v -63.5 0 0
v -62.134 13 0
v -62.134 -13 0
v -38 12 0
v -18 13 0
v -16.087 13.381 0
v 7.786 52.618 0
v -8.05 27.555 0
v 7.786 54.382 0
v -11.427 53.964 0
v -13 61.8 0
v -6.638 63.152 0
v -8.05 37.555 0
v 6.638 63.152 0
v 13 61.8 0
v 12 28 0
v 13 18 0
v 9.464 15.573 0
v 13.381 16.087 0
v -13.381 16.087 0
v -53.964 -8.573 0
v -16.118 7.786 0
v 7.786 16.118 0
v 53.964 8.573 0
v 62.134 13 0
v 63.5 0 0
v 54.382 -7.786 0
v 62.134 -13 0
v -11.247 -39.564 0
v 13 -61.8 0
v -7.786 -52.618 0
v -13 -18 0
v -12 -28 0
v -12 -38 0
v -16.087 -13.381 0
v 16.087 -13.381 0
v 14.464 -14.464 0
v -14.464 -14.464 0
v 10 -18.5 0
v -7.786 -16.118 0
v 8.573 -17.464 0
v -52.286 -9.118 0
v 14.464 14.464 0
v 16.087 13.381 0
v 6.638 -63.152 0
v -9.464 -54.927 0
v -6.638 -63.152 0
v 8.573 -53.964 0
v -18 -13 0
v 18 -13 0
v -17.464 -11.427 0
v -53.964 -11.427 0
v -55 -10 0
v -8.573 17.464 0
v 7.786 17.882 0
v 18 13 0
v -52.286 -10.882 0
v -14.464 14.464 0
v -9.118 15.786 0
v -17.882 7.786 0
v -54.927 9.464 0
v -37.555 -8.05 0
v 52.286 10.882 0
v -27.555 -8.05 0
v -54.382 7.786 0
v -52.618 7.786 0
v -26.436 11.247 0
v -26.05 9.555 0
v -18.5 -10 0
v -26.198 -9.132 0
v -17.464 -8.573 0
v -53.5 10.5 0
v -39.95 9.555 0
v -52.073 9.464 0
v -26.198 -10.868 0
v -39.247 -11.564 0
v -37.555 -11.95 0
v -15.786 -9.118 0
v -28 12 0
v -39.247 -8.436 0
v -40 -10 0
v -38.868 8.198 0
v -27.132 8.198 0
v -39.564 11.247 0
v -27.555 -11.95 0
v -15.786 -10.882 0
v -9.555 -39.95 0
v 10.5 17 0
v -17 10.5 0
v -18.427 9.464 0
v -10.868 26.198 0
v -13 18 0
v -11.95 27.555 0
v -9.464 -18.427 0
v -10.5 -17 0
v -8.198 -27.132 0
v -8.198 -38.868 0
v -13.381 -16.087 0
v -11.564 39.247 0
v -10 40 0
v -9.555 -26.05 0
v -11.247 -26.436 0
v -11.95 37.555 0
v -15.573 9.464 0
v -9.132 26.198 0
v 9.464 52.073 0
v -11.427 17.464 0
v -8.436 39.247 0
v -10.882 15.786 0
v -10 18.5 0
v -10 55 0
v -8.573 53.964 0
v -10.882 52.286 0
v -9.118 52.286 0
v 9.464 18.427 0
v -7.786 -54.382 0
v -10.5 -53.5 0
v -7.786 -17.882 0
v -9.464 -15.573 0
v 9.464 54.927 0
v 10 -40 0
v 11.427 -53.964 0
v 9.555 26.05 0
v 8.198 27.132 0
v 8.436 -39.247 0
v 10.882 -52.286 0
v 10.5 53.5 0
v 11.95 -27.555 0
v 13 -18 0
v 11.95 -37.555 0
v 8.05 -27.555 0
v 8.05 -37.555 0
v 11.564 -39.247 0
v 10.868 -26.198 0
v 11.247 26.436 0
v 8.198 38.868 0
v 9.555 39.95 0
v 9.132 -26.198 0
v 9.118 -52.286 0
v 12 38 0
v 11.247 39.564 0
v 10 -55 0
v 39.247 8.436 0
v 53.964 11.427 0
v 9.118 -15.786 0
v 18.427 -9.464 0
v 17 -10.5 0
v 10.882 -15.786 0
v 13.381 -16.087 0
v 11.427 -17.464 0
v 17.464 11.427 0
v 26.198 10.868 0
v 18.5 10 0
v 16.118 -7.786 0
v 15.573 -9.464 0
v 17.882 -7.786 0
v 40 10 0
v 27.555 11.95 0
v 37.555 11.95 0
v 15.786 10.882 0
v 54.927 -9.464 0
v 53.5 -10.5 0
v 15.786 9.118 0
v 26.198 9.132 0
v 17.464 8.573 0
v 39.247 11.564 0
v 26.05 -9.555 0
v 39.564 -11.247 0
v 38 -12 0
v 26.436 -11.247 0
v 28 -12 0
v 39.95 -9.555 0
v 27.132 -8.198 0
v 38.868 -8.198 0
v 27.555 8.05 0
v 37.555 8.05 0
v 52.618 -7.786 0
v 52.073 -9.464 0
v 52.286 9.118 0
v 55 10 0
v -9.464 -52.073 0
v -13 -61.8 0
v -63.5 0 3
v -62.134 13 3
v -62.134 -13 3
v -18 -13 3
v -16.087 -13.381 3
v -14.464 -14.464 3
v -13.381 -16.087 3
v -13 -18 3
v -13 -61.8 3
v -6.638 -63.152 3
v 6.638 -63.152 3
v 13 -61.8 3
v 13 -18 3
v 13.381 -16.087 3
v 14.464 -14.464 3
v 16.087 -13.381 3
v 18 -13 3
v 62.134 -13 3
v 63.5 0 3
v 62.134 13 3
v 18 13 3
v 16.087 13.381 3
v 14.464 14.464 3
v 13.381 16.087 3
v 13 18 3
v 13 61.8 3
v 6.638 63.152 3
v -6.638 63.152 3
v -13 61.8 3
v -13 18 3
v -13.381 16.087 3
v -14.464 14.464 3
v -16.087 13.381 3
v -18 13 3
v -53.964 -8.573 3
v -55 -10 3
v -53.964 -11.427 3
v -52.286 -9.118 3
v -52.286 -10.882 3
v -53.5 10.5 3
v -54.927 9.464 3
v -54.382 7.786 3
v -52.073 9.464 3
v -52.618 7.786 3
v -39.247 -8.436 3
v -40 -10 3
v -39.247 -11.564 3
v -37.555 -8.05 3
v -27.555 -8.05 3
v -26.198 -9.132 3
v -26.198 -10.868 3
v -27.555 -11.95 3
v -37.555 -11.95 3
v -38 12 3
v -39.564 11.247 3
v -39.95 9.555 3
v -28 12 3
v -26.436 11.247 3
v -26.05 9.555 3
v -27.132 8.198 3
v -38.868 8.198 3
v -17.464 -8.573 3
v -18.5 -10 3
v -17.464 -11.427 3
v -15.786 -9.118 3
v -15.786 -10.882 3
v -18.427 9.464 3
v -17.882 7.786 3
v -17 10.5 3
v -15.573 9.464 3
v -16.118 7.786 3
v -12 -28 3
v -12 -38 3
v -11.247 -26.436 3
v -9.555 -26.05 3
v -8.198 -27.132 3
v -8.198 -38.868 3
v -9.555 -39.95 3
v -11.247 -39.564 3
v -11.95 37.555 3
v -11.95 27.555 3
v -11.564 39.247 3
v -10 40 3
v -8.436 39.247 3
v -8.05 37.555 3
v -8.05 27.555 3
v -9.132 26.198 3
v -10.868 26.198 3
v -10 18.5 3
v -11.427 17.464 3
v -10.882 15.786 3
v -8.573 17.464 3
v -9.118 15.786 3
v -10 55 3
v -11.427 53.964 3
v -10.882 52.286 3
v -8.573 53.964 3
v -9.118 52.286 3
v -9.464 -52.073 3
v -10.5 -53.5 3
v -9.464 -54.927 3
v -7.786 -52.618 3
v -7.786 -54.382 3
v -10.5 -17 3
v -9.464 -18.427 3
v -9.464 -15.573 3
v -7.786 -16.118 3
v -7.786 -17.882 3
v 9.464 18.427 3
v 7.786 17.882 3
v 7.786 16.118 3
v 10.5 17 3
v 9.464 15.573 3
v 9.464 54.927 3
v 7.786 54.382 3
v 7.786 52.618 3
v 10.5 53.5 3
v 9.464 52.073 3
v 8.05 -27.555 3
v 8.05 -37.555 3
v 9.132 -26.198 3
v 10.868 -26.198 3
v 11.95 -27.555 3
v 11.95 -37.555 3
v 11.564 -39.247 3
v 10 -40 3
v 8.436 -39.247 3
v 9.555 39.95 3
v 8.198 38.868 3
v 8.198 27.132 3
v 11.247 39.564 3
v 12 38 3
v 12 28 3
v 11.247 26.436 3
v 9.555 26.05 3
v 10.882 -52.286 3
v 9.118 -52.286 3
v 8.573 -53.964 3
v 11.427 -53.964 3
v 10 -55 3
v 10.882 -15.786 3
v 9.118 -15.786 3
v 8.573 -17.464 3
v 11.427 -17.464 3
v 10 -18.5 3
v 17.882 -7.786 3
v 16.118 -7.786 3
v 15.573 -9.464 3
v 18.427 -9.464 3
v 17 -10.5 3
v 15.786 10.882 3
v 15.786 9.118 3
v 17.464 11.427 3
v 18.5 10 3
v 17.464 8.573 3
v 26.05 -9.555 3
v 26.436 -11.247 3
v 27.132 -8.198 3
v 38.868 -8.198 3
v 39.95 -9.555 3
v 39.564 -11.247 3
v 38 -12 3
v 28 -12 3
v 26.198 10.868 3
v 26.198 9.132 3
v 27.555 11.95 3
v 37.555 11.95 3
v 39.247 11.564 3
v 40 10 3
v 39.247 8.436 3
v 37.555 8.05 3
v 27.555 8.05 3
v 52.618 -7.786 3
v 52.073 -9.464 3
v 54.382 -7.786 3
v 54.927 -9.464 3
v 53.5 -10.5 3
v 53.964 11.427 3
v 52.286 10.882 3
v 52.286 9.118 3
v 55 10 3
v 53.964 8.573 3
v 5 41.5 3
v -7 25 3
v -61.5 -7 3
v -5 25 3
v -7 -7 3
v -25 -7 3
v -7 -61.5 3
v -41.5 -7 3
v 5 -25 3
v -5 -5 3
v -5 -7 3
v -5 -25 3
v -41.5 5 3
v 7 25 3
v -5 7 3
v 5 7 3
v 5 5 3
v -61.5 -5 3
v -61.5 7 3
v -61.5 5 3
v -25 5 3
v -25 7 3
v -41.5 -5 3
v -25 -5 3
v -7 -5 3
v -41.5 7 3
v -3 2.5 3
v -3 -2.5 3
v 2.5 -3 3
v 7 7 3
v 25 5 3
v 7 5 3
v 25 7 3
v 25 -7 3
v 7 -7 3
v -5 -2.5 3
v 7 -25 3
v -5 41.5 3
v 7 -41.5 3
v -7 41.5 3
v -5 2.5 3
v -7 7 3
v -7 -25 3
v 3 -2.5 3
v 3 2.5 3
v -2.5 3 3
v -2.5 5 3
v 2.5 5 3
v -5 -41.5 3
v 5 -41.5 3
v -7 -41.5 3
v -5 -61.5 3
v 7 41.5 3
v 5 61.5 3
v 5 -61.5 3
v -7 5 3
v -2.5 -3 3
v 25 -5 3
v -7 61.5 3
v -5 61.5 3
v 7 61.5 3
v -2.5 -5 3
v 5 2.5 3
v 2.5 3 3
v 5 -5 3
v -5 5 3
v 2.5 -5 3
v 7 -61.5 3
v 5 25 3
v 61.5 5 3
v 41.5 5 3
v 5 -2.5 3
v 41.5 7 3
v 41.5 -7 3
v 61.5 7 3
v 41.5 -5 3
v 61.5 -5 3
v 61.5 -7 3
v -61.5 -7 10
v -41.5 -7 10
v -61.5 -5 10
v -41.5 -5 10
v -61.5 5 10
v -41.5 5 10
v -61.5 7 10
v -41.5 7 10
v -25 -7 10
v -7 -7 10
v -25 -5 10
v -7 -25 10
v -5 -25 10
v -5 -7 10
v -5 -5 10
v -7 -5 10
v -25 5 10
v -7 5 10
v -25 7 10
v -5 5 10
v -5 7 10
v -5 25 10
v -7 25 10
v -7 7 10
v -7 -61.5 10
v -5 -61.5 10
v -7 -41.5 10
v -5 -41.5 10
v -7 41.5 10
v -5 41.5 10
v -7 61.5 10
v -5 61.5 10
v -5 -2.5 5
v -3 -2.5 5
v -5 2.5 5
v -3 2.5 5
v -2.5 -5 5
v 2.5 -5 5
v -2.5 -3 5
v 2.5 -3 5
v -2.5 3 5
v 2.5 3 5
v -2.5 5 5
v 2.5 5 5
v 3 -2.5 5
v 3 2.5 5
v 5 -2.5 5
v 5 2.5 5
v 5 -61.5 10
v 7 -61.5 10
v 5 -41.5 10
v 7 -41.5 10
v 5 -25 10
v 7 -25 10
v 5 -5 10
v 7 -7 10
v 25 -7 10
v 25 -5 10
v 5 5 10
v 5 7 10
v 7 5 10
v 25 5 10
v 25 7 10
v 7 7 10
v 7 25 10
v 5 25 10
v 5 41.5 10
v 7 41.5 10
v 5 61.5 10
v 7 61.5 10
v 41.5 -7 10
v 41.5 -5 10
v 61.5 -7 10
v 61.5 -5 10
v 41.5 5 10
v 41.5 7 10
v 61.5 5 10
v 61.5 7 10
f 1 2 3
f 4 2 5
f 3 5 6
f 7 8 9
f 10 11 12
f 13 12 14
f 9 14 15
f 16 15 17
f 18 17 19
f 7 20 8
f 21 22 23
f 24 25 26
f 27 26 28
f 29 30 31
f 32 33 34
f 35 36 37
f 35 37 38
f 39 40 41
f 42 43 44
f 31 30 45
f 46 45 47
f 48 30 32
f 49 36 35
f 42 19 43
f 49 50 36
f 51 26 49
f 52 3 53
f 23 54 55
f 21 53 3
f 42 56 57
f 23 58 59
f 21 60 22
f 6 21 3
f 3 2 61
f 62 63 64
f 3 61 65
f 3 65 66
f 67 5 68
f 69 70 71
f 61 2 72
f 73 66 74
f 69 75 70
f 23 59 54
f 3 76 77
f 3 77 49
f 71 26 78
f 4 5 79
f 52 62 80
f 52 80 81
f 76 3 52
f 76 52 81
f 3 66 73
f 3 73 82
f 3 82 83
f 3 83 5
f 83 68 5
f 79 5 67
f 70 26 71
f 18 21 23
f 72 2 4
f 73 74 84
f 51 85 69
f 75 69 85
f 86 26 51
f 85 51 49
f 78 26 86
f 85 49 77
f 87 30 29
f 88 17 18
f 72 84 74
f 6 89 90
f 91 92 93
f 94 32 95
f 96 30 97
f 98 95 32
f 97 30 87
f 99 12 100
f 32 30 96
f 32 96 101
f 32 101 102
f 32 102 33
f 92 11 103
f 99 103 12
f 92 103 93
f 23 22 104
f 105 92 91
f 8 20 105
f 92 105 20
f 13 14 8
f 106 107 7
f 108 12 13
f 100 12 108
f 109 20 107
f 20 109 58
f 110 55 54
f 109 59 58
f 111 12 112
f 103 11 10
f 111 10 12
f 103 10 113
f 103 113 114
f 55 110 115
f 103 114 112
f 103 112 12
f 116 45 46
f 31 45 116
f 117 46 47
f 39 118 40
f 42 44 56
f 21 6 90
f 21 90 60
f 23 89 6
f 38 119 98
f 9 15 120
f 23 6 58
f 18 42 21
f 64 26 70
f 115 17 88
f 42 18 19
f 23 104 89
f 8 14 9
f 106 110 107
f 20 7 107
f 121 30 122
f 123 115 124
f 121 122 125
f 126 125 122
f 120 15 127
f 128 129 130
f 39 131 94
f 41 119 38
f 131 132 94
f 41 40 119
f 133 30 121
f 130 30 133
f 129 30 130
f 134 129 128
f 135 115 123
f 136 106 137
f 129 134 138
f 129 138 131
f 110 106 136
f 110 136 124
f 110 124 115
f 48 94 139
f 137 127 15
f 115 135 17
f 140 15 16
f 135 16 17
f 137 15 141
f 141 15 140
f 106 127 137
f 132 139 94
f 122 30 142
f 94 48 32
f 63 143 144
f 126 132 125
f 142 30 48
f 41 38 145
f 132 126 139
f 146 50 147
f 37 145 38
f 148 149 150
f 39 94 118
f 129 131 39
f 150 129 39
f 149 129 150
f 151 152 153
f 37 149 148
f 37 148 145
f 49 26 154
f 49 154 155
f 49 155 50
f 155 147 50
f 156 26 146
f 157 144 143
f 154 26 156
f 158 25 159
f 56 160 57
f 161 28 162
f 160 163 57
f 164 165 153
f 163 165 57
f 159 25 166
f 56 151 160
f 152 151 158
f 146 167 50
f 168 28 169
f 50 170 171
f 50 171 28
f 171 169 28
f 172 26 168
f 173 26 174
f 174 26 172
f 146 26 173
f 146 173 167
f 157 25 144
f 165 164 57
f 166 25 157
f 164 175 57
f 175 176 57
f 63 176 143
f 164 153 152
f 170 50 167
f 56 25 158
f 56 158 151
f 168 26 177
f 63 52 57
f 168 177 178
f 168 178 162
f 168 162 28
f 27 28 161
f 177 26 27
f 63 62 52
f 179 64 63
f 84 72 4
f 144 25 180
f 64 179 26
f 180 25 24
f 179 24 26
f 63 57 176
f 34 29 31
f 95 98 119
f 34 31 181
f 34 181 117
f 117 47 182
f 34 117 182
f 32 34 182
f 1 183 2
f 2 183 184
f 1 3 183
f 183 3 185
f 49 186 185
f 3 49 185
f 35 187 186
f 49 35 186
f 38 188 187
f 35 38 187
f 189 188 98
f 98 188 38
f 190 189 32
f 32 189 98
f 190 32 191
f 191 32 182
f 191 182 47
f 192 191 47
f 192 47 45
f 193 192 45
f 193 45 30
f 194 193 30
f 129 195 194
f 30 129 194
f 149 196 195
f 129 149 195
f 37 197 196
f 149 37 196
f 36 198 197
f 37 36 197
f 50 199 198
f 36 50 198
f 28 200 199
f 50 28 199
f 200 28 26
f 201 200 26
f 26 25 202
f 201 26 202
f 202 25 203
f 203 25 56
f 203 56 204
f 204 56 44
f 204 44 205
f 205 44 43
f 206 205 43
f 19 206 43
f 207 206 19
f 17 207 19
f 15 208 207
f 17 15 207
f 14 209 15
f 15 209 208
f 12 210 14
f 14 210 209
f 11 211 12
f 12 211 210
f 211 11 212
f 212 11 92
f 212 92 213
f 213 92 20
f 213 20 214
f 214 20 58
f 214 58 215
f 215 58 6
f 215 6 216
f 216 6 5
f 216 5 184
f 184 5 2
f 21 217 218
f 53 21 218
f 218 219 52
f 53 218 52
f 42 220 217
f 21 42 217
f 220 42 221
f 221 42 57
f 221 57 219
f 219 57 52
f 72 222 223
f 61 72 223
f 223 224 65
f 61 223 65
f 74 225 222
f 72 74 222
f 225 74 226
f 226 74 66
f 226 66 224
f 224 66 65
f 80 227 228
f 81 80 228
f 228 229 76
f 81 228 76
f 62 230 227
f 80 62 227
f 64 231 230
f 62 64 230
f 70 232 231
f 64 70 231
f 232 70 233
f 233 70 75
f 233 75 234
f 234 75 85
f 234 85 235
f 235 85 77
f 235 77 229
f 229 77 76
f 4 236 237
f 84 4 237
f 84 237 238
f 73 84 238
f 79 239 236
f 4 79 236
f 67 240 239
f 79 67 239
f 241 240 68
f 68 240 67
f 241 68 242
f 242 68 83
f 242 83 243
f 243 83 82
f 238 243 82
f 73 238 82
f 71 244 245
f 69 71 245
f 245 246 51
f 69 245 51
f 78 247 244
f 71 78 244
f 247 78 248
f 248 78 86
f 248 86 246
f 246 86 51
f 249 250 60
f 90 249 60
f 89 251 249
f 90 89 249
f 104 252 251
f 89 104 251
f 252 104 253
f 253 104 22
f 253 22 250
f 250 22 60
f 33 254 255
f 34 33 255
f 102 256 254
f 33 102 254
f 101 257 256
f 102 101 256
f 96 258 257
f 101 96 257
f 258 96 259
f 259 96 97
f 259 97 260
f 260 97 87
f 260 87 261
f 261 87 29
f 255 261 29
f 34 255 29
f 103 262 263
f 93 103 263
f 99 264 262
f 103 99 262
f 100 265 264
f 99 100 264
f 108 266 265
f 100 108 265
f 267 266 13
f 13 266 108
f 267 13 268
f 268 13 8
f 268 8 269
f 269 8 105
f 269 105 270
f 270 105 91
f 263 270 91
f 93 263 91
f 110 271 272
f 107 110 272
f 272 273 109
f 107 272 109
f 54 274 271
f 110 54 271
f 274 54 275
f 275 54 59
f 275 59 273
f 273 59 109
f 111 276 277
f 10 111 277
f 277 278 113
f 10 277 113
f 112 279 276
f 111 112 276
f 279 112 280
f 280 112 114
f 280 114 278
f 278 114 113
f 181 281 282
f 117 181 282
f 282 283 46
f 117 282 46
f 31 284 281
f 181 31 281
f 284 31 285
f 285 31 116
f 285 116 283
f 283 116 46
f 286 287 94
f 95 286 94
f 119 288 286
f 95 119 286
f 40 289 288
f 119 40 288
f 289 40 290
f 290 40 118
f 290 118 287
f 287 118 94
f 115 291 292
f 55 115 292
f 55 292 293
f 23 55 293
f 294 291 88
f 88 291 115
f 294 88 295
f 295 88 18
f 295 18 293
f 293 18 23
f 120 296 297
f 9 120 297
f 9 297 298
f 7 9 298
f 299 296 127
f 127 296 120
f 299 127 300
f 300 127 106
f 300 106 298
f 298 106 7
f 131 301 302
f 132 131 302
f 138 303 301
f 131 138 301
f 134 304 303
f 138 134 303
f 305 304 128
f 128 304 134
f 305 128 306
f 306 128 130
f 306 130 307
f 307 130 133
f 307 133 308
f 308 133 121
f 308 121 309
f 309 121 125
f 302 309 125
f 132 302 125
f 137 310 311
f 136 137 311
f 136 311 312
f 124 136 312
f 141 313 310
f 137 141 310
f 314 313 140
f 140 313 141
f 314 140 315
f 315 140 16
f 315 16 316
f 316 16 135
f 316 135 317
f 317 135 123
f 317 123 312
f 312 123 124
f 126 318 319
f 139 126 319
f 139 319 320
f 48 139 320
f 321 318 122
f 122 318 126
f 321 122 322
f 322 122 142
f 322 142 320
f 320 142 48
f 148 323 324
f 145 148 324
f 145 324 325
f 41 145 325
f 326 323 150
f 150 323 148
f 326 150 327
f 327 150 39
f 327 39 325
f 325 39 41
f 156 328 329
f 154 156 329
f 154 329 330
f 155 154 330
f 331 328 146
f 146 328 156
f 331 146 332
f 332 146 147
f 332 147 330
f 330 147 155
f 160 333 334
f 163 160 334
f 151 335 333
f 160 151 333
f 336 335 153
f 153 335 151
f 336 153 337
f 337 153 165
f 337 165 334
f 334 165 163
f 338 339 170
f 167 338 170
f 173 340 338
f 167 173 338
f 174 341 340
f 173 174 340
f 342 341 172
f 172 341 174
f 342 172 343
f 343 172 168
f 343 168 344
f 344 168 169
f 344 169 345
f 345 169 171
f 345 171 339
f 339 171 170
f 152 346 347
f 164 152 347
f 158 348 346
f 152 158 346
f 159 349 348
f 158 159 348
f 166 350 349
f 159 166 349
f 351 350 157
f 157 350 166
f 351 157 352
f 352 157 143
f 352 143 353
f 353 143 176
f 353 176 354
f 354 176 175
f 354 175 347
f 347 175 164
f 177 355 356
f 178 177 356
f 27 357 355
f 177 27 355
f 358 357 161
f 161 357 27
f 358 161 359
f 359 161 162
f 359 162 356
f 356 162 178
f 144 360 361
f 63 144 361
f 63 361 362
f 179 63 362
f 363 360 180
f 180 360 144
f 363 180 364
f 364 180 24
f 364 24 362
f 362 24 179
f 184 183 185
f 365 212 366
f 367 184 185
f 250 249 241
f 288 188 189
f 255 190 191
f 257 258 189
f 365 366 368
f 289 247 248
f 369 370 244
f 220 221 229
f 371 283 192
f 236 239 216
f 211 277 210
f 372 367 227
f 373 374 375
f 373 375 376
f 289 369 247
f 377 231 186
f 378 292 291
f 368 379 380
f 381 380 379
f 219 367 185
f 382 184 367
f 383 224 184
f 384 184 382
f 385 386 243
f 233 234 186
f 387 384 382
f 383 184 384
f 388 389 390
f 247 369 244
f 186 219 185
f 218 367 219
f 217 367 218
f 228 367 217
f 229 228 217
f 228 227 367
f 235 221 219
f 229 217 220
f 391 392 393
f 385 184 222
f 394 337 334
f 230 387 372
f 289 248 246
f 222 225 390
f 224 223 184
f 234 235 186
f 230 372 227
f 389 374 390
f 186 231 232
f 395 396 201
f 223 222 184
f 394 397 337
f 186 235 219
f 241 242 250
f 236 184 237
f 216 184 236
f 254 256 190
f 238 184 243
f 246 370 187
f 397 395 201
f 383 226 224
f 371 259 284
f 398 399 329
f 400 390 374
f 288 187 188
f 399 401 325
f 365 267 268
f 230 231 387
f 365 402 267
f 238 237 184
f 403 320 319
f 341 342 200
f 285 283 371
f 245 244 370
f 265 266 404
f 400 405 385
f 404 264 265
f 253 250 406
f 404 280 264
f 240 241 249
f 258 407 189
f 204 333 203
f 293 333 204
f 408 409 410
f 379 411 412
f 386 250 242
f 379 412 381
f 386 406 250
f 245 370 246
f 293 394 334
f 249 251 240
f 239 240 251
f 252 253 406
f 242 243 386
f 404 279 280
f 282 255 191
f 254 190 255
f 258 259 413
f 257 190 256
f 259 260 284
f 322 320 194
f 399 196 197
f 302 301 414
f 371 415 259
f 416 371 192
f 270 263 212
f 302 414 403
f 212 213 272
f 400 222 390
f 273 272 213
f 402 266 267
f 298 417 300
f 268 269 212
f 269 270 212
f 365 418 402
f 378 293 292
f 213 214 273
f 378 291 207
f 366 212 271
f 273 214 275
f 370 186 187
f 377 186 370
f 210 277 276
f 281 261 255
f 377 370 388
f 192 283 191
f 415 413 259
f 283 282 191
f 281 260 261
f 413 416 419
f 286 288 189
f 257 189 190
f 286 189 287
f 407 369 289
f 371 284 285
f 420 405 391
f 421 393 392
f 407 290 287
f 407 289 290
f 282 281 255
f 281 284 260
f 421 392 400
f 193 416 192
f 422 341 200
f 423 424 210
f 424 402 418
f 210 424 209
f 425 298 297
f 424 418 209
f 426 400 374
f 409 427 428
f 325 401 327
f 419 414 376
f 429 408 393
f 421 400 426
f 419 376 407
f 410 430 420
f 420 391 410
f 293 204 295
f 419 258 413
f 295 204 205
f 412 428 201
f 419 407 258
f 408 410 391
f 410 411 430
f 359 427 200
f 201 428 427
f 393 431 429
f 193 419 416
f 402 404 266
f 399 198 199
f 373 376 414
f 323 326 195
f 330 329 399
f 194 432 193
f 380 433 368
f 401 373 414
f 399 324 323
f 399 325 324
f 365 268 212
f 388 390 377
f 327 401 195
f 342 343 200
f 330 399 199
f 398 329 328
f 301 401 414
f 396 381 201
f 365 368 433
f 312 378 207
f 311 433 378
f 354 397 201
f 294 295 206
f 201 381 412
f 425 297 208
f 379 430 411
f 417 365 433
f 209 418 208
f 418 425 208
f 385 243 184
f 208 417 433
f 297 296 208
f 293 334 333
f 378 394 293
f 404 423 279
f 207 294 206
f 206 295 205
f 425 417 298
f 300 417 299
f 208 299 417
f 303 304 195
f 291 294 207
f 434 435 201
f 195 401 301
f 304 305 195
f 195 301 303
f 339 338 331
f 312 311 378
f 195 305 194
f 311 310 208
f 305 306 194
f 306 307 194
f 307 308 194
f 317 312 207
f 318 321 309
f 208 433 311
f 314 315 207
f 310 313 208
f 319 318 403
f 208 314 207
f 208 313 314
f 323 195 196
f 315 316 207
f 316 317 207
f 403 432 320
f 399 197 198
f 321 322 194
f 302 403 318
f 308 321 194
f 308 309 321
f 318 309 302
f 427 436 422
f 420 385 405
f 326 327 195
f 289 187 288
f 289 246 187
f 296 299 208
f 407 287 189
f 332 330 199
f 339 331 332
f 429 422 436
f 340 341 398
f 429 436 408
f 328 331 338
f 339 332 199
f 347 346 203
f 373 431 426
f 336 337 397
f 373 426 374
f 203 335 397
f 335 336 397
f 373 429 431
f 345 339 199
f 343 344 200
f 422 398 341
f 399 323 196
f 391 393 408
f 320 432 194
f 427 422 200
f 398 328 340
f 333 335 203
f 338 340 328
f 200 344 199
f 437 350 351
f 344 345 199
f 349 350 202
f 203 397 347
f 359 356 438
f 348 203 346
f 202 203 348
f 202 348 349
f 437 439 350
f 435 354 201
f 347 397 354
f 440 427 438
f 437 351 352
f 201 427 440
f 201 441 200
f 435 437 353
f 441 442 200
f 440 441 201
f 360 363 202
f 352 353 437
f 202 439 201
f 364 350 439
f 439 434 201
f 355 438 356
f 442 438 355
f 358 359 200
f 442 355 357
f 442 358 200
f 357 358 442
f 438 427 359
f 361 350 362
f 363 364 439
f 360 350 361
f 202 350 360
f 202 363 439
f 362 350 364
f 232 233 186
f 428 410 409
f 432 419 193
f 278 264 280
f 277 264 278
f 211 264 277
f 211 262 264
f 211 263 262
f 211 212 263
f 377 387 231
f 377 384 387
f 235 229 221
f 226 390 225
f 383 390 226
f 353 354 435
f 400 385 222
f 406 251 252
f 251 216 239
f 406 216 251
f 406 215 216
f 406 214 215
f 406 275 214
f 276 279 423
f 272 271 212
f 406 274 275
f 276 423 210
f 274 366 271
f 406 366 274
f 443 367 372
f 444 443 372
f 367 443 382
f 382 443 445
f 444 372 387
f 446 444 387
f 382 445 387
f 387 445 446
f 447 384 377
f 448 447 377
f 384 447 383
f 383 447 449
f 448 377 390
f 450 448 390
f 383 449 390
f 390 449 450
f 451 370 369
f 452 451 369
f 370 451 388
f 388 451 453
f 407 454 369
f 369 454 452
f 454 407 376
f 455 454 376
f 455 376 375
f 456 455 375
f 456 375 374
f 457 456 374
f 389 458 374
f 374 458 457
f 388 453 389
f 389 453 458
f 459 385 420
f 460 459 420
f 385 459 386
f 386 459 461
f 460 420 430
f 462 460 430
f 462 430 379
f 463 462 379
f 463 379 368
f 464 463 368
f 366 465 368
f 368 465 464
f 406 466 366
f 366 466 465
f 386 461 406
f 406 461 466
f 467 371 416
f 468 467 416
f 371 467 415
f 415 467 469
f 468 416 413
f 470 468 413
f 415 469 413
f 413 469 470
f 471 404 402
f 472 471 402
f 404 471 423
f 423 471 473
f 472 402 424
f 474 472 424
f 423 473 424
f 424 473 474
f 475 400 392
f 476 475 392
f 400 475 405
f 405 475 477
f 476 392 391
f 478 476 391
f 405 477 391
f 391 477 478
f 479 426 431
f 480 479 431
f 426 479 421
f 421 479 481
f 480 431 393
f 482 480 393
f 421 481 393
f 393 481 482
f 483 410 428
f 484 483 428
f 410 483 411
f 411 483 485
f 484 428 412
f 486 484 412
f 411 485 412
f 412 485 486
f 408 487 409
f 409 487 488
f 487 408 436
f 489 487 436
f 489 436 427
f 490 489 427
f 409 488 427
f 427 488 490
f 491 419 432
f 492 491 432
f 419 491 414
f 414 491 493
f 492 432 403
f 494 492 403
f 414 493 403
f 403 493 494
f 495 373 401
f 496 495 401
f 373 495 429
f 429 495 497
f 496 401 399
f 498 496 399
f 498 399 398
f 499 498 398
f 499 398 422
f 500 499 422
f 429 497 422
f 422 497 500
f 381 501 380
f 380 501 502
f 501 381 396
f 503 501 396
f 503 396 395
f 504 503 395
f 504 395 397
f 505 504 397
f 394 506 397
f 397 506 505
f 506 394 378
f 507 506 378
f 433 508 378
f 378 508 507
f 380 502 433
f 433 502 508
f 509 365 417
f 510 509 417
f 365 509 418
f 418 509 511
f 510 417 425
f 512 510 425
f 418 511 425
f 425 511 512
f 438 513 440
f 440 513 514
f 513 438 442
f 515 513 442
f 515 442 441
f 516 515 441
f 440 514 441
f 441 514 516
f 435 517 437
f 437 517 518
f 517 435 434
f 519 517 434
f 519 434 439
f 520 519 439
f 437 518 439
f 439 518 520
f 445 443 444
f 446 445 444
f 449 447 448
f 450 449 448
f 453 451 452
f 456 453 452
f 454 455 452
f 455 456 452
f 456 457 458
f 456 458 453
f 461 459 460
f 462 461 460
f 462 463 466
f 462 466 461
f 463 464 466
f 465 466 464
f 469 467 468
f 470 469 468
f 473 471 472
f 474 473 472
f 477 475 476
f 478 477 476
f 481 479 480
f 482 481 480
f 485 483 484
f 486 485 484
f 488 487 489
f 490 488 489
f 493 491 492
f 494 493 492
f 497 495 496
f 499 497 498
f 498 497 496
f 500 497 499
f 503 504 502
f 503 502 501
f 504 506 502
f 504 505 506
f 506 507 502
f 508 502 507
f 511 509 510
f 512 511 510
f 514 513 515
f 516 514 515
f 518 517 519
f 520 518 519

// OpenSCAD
//----------------------------------------------------------------------
// stick holding bottom portion.
//
//----------------------------------------------------------------------

PlateRadius=5*25.4/2;
PlateHeight=3;

StickDia=10;    // for 10x10 stick

HolderLen=20;   // length of stick holder
HolderHeight=8; // height of stick holder
HolderWid=2;    // width of stick holder

BoltRad=3/2;   // radius of boltholes
LightGray=[.2,.2,.9,.2];

DrillOffset=1;

//----------------------------------------------------------------------
// main plate
//----------------------------------------------------------------------

module plate() {
    difference() {
        // plate
        color([.1,.1,.1,.4]) cylinder(h=PlateHeight, r=PlateRadius);

        // trim edges
        for (i = [0:3]) {
            rotate(90*i) {
                translate([18,18,-1]) {
                    minkowski() {
                        cube([50,50,10]);
                        cylinder(10,5,5);
                    }
                }

                // drill holes
                // hole 1
                translate([StickDia/2+HolderWid+HolderLen/2,StickDia/2+HolderWid*2+DrillOffset,-1])
                    color("green") cylinder(h=PlateHeight+2,r=BoltRad);
                // hole 2
                translate([PlateRadius-10,StickDia/2+HolderWid*2+DrillOffset,-1])
                    color("green") cylinder(h=PlateHeight+2,r=BoltRad);
                // hole 3
                translate([StickDia/2+HolderWid+3-DrillOffset,StickDia/2+HolderWid+HolderLen/2,-1])
                    color("green") cylinder(h=PlateHeight+2,r=BoltRad);
                // hole 4
                translate([StickDia/2+HolderWid*2+DrillOffset-1,PlateRadius-10,-1])
                    color("green") cylinder(h=PlateHeight+2,r=BoltRad);

                // battery holders
                translate([28,10,-1]) {
                    hull() {
                        cylinder(10,2,2);
                        translate([10,0,0]) cylinder(10,2,2);
                    }
                }

                translate([10,28,-1]) {
                    hull() {
                        cylinder(10,2,2);
                        translate([0,10,0]) cylinder(10,2,2);
                    }
                }


            }
        }
    }

    // arm stops
    for (i = [0:3]) {
        rotate(90*i) {
            translate([StickDia/2-HolderWid,-StickDia/4,0])
            color("green") cube([HolderWid,StickDia/2,PlateHeight+2]);
        }
    }
}

//----------------------------------------------------------------------
// reference cubes
//----------------------------------------------------------------------

module refCube()
    color(LightGray) cube([StickDia,StickDia,StickDia]);

module refcubes() {
    // center and each end of the stick
    //translate([-StickDia/2,-StickDia/2,0+PlateHeight]) refCube();
    translate([StickDia/2,-StickDia/2,0+PlateHeight]) refCube();
    translate([PlateRadius-StickDia,-StickDia/2,0+PlateHeight]) refCube();
}

//----------------------------------------------------------------------
// end holders , inside and outside
//----------------------------------------------------------------------

module holders() {
    for ( i = [0 : 3] ){
        rotate(90*i) {

            // outside
            translate([PlateRadius-HolderLen-2,StickDia/2,2])
                color("red") cube([HolderLen,HolderWid,HolderHeight]);

            translate([PlateRadius-HolderLen-2,-HolderWid-StickDia/2,2])
                color("blue") cube([HolderLen,HolderWid,HolderHeight]);

            // inside
            translate([StickDia/2,StickDia/2,2])
                color("red") cube([HolderLen,HolderWid,HolderHeight]);

            translate([StickDia/2,-HolderWid-StickDia/2,2])
                color("blue") cube([HolderLen,HolderWid,HolderHeight]);
        }
    }
}

//----------------------------------------------------------------------
// put everything together
//----------------------------------------------------------------------
plate();
holders();
//refcubes();
